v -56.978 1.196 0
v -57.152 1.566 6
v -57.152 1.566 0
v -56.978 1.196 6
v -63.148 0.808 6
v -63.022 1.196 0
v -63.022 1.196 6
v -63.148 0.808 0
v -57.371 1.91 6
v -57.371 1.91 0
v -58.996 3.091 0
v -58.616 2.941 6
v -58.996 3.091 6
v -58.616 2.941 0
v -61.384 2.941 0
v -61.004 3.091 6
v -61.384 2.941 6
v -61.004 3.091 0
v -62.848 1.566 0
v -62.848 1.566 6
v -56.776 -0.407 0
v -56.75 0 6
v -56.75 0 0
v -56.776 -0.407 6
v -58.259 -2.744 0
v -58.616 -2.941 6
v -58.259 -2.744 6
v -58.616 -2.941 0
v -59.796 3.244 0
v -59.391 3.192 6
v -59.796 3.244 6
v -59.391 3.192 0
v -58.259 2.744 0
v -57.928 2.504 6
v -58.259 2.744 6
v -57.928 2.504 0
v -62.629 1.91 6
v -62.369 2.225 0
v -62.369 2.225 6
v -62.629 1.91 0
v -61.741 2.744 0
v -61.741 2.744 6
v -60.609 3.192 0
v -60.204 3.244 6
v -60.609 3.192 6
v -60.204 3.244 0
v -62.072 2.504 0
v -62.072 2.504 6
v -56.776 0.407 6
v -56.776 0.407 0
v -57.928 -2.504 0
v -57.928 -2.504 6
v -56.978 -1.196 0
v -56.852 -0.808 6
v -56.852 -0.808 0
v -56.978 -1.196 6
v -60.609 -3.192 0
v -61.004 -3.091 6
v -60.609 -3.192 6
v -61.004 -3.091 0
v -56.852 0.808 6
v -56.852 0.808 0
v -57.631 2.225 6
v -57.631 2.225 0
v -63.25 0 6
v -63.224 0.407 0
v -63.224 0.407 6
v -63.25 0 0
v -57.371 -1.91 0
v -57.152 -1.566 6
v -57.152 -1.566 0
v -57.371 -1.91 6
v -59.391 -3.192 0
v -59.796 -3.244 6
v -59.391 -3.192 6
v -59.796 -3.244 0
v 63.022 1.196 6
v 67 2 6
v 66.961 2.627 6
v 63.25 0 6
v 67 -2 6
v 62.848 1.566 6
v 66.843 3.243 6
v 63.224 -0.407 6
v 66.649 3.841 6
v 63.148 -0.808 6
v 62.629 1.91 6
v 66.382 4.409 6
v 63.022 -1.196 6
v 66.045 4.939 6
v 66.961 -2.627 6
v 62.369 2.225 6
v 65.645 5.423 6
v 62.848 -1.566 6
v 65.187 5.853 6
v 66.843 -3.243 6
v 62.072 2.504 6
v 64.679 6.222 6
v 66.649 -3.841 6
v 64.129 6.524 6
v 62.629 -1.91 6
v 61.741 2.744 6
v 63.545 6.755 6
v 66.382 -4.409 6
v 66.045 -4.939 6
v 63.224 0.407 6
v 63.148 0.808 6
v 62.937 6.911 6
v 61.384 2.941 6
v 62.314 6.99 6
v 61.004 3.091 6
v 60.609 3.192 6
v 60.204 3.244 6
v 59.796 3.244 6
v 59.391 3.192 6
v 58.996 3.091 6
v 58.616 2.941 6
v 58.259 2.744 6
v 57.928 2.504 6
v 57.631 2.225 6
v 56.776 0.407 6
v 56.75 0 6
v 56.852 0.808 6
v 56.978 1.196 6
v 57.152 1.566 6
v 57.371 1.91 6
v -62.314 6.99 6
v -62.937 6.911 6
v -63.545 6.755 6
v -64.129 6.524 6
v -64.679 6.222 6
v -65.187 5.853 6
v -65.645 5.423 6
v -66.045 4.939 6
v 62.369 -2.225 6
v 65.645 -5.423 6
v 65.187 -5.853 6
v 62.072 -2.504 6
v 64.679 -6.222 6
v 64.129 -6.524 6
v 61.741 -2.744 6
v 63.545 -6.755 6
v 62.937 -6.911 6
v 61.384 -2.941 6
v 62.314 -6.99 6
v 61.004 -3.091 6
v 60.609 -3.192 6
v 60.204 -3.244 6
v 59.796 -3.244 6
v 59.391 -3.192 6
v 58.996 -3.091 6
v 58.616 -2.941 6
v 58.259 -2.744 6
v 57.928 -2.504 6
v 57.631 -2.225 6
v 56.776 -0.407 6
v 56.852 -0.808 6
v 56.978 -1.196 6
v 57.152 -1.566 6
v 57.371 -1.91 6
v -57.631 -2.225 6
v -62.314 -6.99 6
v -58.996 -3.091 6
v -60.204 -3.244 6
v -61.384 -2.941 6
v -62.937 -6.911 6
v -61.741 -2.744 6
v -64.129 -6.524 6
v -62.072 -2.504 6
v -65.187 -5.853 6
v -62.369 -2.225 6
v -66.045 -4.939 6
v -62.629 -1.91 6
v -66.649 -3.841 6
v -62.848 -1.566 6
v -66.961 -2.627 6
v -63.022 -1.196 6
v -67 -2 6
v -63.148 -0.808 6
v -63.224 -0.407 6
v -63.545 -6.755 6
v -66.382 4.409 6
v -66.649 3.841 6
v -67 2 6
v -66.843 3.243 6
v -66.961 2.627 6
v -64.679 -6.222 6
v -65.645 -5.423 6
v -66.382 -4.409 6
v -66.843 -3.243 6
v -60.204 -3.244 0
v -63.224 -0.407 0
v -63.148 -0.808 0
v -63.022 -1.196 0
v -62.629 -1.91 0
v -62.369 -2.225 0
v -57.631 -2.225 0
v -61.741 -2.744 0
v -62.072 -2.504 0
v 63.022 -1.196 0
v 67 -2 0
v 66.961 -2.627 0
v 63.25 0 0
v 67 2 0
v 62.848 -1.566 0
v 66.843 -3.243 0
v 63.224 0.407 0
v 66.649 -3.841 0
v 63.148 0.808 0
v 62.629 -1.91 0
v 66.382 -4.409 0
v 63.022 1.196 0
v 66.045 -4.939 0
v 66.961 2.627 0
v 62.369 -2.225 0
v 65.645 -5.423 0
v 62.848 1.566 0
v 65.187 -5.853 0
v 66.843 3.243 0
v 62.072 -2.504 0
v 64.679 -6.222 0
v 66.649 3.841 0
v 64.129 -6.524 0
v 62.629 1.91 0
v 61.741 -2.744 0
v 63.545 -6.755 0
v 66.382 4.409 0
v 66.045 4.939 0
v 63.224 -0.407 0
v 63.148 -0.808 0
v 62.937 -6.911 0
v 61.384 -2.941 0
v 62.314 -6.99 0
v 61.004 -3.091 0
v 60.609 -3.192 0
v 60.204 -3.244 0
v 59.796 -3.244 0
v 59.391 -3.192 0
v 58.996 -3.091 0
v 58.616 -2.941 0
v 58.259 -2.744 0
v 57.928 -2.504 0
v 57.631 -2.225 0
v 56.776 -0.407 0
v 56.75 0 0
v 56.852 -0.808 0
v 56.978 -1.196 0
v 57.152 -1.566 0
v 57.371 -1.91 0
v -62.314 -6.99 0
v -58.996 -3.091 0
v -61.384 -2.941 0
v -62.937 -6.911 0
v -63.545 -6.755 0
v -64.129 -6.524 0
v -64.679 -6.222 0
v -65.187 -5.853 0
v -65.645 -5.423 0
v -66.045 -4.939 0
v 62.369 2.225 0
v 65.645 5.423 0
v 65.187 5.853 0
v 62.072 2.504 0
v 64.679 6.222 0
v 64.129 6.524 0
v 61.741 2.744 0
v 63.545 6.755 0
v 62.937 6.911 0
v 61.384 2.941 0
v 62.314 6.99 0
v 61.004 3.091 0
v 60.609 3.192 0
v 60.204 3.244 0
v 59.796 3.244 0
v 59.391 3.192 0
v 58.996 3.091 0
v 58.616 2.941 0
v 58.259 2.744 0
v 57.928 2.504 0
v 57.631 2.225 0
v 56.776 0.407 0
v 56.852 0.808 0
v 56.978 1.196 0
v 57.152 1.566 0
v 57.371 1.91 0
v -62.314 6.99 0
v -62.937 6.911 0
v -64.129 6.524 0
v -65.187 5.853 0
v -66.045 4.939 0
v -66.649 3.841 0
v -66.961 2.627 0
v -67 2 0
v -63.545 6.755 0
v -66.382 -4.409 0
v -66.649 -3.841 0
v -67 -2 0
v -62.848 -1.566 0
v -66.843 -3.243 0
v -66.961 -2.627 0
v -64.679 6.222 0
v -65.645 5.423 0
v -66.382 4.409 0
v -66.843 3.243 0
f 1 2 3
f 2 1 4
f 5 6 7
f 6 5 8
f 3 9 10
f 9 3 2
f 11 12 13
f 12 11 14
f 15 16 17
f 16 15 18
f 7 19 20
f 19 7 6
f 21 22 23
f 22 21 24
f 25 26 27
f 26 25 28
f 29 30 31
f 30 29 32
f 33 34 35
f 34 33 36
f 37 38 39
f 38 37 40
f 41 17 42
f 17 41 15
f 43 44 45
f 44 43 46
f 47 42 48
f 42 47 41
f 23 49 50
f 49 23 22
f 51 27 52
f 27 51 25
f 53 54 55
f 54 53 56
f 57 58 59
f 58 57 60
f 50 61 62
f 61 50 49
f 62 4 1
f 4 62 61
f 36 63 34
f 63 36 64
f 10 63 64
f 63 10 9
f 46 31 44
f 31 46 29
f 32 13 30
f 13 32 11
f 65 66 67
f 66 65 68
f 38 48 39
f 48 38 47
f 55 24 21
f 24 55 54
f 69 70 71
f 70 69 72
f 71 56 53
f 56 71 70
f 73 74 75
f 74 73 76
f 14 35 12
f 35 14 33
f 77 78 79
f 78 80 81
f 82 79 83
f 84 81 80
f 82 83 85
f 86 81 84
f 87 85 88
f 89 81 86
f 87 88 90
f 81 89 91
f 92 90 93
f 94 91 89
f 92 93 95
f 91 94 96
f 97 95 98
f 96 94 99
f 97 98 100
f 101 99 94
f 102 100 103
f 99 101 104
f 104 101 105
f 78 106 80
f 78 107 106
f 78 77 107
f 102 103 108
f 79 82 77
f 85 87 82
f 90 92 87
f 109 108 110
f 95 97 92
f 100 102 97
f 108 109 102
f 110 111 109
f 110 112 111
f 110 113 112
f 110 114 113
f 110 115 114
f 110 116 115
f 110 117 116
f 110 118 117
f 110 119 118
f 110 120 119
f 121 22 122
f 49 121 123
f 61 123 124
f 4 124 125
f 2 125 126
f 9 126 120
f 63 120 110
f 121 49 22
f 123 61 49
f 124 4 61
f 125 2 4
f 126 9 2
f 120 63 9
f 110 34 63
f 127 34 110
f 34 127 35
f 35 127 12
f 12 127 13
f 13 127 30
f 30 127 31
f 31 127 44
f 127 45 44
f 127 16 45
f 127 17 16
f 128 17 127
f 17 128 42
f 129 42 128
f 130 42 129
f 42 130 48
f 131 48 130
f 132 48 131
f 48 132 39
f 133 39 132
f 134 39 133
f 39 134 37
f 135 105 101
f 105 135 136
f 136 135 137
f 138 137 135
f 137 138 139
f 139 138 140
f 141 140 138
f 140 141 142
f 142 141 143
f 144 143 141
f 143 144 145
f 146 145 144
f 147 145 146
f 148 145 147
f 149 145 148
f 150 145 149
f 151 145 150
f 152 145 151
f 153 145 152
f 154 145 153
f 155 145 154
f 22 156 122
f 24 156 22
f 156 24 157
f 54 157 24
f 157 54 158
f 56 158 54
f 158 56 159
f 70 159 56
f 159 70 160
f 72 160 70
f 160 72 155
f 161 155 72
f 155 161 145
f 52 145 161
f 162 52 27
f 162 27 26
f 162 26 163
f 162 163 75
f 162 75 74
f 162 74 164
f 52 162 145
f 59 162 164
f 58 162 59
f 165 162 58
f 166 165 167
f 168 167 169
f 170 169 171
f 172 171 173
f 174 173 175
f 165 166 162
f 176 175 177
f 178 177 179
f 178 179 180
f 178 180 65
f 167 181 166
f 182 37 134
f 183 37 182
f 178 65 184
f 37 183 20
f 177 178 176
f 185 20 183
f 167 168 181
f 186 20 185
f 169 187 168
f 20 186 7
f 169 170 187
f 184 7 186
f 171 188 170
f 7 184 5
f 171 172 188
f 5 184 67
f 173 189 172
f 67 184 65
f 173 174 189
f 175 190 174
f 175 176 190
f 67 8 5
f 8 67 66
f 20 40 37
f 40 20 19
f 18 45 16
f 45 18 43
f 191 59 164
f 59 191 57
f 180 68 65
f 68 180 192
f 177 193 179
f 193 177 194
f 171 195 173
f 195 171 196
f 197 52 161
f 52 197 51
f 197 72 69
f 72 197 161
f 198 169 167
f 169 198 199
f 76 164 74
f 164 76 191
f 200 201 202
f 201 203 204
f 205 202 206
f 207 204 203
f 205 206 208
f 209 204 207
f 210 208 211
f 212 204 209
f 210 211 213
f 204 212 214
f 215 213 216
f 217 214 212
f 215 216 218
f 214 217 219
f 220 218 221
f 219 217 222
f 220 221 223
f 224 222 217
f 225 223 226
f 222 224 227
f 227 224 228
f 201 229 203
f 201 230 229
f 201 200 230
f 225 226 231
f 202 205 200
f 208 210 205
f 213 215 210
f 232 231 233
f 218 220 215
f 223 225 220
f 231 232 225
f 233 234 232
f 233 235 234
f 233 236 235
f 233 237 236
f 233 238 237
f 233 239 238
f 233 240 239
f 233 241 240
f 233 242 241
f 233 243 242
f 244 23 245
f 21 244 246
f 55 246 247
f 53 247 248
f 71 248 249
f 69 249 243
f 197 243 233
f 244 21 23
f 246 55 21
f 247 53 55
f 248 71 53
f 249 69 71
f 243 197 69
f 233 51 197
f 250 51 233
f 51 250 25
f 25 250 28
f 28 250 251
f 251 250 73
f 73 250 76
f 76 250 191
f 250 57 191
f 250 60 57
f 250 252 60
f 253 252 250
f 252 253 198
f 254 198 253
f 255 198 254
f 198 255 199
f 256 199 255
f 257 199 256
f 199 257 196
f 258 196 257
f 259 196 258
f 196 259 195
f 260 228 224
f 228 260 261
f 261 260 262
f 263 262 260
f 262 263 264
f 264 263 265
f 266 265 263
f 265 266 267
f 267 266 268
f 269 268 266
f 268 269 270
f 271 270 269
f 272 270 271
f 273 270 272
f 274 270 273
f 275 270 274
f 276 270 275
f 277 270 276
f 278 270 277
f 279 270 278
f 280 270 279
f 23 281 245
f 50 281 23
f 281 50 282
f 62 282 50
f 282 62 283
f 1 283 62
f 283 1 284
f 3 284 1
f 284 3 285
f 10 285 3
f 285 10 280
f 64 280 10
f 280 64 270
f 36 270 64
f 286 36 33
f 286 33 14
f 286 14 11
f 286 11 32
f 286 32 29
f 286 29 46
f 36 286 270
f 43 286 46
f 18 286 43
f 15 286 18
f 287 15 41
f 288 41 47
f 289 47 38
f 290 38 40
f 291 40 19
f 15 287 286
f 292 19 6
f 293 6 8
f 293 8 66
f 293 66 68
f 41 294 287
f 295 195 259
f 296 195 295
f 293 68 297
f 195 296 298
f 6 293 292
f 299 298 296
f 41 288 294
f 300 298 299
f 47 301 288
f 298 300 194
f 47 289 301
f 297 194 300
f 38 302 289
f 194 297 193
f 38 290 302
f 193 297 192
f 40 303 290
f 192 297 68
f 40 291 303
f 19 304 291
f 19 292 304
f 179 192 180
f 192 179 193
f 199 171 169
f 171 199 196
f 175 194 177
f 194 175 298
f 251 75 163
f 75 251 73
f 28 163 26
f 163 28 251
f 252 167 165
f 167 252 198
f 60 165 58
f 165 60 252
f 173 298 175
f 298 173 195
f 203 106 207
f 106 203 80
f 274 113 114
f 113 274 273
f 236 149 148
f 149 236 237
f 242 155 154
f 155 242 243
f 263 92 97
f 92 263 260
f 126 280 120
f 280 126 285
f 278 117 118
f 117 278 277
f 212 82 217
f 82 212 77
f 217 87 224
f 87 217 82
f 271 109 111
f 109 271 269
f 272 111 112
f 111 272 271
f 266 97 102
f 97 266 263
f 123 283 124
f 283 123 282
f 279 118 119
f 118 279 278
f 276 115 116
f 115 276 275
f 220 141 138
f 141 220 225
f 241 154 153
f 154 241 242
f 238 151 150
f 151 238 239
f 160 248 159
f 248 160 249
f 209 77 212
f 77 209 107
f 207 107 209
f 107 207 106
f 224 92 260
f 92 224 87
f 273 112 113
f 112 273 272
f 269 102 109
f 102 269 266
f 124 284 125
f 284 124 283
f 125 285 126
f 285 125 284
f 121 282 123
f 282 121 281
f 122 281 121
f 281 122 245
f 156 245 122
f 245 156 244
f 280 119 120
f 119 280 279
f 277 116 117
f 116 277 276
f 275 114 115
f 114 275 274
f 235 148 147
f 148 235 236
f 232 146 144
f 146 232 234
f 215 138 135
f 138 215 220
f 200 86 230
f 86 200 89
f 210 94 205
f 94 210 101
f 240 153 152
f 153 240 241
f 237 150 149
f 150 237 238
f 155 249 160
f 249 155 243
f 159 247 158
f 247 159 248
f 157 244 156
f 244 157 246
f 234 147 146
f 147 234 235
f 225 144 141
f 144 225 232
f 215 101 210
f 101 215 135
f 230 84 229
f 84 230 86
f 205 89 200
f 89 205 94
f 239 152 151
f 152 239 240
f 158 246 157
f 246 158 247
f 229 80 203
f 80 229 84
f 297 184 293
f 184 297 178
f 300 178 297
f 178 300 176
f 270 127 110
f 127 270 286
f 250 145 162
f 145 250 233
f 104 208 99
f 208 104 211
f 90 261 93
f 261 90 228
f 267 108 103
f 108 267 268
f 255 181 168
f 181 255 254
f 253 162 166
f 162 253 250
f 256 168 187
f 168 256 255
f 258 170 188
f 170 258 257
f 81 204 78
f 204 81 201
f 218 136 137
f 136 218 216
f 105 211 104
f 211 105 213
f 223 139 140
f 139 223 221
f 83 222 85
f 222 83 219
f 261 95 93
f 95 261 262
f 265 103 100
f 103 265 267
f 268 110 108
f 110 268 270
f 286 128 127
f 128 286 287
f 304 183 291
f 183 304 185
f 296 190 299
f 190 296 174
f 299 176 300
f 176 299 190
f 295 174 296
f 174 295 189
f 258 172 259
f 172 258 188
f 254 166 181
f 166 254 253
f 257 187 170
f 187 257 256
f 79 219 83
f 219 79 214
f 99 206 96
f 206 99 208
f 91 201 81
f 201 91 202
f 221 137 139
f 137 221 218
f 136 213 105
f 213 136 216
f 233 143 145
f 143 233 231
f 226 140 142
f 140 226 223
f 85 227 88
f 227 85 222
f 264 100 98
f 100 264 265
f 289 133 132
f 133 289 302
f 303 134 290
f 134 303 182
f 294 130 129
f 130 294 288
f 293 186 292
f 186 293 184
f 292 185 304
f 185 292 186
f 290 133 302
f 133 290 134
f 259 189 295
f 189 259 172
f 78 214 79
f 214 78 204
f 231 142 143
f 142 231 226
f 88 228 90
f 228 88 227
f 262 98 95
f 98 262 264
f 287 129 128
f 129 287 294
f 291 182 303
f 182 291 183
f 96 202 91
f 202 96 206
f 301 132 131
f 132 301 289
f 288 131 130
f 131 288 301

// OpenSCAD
$fn = 50;


difference() {
	union() {
		hull() {
			translate(v = [-62.0000000000, 2.0000000000, 0]) {
				cylinder(h = 6, r = 5);
			}
			translate(v = [62.0000000000, 2.0000000000, 0]) {
				cylinder(h = 6, r = 5);
			}
			translate(v = [-62.0000000000, -2.0000000000, 0]) {
				cylinder(h = 6, r = 5);
			}
			translate(v = [62.0000000000, -2.0000000000, 0]) {
				cylinder(h = 6, r = 5);
			}
		}
	}
	union() {
		translate(v = [-60.0000000000, 0.0000000000, -100.0000000000]) {
			cylinder(h = 200, r = 3.2500000000);
		}
		translate(v = [-60.0000000000, 0.0000000000, -100.0000000000]) {
			cylinder(h = 200, r = 3.2500000000);
		}
		translate(v = [60.0000000000, 0.0000000000, -100.0000000000]) {
			cylinder(h = 200, r = 3.2500000000);
		}
		translate(v = [60.0000000000, 0.0000000000, -100.0000000000]) {
			cylinder(h = 200, r = 3.2500000000);
		}
	}
}
